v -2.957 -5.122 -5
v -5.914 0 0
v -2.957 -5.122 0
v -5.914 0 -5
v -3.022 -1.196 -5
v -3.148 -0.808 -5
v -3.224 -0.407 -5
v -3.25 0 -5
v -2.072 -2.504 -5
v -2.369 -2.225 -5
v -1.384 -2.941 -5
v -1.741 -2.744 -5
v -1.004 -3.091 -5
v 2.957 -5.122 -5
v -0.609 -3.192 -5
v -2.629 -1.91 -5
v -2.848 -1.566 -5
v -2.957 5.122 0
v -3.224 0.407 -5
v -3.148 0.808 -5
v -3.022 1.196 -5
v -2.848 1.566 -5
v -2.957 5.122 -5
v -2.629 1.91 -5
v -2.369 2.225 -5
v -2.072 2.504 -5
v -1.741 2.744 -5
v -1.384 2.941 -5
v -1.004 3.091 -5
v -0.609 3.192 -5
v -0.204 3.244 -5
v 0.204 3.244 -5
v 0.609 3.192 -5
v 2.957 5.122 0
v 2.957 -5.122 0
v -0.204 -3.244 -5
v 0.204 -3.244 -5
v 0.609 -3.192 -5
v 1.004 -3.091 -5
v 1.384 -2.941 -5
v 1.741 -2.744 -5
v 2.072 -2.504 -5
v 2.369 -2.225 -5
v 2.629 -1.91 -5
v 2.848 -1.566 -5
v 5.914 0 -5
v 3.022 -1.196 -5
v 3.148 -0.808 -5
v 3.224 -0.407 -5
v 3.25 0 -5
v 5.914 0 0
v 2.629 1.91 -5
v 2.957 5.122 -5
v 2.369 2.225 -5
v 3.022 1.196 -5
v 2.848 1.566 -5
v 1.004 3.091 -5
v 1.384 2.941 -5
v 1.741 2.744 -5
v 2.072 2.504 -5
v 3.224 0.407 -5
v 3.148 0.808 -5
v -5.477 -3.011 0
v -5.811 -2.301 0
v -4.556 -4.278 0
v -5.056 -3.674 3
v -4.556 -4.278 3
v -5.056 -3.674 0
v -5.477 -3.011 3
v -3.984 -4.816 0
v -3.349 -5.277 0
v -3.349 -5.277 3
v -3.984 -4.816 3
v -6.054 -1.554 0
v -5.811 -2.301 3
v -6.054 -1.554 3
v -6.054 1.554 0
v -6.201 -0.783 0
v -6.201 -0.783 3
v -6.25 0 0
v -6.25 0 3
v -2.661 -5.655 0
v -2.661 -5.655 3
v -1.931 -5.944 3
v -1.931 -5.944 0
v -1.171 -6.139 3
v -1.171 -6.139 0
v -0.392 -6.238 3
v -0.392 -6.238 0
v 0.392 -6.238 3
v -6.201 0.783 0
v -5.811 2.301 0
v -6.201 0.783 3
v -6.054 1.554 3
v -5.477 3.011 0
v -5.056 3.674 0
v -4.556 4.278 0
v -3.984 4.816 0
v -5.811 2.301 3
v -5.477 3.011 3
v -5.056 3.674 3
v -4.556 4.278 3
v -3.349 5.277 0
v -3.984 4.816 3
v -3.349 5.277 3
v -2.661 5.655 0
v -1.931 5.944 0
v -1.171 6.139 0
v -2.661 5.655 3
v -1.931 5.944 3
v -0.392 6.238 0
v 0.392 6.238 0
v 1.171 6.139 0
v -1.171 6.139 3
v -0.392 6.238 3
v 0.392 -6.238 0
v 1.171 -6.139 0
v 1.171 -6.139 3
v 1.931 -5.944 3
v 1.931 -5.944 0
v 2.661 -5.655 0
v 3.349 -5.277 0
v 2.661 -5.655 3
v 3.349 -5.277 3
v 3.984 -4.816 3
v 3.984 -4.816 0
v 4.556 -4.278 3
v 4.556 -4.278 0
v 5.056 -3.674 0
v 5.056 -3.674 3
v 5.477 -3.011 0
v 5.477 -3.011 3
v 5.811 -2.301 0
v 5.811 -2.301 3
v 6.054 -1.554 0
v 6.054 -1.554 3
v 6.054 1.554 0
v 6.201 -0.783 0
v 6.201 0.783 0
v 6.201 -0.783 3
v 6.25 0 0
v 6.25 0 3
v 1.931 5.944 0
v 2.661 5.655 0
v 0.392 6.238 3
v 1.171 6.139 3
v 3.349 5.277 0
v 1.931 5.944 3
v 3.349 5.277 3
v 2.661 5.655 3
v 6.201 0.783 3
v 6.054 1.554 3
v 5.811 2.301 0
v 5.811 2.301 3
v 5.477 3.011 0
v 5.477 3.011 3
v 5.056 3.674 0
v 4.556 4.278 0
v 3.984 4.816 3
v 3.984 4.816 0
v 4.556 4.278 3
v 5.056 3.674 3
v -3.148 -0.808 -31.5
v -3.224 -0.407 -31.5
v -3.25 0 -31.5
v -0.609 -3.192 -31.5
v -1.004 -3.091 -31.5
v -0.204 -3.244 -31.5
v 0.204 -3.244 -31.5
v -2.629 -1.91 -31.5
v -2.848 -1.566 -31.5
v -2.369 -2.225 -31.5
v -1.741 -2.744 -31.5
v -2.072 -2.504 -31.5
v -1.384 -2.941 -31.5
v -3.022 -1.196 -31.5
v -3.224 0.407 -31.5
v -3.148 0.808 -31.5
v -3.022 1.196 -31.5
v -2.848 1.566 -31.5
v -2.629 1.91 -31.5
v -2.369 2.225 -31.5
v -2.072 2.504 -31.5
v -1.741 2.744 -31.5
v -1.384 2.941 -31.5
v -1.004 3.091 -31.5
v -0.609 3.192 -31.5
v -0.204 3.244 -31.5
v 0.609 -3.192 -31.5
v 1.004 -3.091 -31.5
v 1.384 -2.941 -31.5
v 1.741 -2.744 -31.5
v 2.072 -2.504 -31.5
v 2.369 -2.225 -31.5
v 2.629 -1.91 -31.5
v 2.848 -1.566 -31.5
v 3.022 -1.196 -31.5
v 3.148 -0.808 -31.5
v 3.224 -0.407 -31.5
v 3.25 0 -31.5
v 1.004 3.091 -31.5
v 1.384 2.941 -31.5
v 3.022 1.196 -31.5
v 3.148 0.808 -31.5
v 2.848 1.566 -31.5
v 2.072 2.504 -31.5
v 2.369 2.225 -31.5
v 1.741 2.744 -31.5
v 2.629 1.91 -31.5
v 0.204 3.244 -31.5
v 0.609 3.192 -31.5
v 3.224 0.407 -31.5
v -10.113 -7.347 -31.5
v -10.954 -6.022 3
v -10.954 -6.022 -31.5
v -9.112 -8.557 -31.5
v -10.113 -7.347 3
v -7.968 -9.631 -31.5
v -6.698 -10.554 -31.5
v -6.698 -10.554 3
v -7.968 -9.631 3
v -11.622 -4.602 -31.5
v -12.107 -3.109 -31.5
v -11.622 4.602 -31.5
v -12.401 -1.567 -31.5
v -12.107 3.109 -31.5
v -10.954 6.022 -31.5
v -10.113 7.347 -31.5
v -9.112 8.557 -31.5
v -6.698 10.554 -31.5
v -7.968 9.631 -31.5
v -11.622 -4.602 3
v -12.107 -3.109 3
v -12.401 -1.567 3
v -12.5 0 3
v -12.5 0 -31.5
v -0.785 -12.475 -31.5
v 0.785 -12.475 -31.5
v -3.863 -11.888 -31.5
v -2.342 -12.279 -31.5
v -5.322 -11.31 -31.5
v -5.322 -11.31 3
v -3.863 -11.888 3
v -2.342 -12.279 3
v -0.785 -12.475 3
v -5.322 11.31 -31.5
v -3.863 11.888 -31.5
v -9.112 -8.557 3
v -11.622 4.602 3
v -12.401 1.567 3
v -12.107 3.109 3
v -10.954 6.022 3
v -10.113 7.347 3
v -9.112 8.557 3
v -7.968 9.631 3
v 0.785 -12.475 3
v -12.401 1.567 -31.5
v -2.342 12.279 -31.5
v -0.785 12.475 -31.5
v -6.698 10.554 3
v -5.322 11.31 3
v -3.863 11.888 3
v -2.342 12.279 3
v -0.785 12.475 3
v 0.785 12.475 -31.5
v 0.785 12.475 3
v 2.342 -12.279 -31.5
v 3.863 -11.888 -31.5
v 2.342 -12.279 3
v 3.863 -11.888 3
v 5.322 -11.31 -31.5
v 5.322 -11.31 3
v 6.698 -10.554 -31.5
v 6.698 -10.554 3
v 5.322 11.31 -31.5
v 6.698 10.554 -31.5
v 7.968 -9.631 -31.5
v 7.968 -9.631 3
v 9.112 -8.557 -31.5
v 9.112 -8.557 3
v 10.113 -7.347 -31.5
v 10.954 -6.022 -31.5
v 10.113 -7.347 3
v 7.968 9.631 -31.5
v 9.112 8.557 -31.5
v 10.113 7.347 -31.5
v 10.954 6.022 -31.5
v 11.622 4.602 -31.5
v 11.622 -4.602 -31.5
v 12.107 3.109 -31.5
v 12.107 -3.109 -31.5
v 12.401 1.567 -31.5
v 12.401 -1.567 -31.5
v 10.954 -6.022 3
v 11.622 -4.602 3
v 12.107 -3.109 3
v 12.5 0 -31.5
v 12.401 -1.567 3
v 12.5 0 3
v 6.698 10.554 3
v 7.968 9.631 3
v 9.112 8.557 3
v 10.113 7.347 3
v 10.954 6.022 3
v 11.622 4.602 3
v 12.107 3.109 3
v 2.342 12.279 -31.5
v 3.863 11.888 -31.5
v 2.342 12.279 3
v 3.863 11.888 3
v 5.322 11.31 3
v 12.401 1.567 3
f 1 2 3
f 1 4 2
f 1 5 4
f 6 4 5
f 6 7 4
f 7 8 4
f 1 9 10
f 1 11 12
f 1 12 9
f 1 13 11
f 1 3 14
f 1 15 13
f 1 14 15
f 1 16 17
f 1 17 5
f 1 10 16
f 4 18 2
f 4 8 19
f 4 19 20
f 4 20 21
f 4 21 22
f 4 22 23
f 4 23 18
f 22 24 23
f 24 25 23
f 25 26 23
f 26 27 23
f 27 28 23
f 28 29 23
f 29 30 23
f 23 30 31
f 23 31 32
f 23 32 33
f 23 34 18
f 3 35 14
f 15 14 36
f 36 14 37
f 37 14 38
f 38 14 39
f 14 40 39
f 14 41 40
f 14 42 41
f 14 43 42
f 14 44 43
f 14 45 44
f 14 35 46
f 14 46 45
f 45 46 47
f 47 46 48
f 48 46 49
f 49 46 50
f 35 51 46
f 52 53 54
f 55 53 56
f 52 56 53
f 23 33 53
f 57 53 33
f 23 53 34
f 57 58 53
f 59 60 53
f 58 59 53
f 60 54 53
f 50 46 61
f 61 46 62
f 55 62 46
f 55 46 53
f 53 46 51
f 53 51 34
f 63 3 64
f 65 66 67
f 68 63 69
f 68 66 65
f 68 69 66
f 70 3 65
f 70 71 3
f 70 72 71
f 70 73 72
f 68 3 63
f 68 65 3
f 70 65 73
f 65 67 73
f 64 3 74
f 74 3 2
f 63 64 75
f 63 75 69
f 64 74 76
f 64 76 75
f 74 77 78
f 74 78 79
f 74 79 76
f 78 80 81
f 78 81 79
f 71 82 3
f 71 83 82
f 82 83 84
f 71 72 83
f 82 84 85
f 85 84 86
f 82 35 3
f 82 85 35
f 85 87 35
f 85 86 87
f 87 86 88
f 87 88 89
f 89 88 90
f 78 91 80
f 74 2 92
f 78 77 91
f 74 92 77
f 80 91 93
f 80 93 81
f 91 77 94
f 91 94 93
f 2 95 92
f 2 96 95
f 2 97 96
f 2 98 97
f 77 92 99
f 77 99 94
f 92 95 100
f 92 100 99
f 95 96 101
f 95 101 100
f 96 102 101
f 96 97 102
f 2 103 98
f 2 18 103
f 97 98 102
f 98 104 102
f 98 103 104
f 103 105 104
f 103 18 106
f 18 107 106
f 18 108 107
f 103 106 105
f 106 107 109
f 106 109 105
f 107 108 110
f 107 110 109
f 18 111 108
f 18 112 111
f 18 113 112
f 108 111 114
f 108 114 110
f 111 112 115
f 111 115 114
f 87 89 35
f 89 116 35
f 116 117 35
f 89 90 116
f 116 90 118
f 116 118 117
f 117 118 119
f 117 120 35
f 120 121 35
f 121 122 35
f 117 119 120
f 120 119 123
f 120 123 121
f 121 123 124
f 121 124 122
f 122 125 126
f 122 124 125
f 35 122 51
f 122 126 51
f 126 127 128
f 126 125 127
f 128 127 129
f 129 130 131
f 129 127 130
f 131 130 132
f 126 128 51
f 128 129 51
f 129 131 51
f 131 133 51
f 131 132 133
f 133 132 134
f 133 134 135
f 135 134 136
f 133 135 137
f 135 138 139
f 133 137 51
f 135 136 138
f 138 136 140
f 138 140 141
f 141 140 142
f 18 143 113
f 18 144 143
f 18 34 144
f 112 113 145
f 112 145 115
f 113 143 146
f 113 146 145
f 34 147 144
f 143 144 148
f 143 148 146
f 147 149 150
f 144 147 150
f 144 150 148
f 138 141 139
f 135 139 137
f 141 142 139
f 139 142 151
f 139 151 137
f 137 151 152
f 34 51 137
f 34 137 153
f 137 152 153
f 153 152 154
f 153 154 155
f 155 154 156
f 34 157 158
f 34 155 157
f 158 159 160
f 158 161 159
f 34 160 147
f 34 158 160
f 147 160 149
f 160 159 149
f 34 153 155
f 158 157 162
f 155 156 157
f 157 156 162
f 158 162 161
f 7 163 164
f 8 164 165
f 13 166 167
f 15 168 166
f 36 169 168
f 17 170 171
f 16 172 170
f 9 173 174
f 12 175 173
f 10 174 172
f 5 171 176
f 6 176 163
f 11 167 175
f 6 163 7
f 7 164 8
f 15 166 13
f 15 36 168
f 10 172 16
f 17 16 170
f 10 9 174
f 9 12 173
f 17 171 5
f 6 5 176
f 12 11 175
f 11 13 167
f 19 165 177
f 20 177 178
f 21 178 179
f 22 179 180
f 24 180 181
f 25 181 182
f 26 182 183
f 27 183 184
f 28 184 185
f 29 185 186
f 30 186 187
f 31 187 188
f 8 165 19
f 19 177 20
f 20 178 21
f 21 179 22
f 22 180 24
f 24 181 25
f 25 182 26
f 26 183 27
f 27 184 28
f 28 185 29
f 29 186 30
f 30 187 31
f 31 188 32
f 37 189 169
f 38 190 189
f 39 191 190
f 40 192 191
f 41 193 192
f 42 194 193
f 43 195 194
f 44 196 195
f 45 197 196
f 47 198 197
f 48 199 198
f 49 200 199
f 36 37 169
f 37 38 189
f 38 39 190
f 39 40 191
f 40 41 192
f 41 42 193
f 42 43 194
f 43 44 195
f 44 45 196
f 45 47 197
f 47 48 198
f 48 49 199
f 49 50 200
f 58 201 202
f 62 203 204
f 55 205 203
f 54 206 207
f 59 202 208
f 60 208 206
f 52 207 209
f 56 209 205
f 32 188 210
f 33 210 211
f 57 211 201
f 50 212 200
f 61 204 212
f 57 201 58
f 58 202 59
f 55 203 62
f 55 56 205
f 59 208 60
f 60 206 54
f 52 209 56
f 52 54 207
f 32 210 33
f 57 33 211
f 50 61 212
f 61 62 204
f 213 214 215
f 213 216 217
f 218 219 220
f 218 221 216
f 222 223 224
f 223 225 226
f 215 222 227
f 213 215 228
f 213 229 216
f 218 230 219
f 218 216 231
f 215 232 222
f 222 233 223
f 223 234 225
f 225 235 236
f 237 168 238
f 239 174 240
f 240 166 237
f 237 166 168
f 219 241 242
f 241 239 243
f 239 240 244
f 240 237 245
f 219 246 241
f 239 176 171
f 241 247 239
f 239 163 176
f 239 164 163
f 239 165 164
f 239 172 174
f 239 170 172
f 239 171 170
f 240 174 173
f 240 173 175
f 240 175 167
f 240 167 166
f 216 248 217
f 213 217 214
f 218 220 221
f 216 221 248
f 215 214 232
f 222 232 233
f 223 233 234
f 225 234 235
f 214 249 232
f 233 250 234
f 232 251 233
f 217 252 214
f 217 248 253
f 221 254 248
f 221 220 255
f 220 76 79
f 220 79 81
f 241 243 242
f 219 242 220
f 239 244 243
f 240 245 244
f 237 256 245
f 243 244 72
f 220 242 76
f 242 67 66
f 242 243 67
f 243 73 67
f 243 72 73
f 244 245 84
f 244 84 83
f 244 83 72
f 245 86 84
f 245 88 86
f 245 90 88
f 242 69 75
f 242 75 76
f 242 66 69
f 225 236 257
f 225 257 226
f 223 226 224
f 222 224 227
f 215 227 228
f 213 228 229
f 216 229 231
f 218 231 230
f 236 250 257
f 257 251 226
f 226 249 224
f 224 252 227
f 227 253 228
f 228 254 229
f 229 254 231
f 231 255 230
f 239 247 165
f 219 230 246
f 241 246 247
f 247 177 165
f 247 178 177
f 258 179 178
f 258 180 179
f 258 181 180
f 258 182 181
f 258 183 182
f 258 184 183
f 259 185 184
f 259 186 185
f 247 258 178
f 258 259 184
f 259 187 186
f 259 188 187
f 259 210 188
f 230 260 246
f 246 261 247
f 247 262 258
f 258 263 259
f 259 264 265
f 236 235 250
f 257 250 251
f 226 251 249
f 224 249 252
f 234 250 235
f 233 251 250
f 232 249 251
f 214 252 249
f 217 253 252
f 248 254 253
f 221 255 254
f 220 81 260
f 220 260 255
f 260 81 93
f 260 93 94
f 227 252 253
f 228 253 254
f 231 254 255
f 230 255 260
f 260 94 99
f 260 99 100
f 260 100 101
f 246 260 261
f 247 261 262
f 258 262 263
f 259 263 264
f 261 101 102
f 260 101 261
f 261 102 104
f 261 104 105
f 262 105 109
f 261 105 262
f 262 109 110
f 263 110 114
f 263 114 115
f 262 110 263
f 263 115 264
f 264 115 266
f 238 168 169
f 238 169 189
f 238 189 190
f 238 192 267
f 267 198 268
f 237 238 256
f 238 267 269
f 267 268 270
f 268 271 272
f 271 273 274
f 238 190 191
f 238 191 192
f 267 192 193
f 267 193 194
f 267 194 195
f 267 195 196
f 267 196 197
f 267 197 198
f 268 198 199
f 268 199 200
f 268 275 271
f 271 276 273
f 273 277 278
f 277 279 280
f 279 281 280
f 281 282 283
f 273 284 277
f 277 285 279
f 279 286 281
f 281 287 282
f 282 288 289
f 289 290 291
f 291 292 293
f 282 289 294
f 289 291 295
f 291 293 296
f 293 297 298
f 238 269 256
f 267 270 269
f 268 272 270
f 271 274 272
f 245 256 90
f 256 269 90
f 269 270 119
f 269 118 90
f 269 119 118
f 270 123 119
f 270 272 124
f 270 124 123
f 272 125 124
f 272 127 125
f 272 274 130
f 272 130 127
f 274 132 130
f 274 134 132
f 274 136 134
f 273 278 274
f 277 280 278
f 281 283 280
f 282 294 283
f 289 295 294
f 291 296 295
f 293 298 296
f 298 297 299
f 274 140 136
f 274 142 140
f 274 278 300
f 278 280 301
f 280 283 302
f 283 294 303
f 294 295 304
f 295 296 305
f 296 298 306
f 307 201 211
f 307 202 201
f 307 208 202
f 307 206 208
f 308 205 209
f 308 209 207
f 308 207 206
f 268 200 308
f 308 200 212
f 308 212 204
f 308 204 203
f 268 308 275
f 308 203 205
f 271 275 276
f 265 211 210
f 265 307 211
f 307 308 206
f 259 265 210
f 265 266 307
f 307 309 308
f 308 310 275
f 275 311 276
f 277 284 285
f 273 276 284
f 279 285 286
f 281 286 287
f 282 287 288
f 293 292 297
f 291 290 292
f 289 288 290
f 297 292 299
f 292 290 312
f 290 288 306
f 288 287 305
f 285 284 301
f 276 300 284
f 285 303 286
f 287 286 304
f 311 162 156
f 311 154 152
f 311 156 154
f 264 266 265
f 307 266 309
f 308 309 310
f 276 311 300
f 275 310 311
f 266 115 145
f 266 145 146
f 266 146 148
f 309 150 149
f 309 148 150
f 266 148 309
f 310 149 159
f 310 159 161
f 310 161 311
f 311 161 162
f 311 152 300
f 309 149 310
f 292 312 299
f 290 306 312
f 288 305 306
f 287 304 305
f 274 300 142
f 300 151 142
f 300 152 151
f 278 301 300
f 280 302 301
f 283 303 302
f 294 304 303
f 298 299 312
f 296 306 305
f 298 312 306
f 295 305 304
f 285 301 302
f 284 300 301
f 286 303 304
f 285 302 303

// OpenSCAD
$fn = 50;


difference() {
	union() {
		translate(v = [0, 0, -31.5000000000]) {
			cylinder(h = 34.5000000000, r = 12.5000000000);
		}
	}
	union() {
		translate(v = [0, 0, 0]) {
			rotate(a = [0, 0, 0]) {
				difference() {
					union() {
						translate(v = [0, 0, -5]) {
							linear_extrude(height = 5) {
								polygon(points = [[5.9142500000, 0.0000000000], [2.9571250000, 5.1218907443], [-2.9571250000, 5.1218907443], [-5.9142500000, 0.0000000000], [-2.9571250000, -5.1218907443], [2.9571250000, -5.1218907443]]);
							}
						}
					}
					union();
				}
			}
		}
		#cylinder(h = 3, r = 6.2500000000);
		#translate(v = [0, 0, -100.0000000000]) {
			cylinder(h = 200, r = 3.2500000000);
		}
	}
}
